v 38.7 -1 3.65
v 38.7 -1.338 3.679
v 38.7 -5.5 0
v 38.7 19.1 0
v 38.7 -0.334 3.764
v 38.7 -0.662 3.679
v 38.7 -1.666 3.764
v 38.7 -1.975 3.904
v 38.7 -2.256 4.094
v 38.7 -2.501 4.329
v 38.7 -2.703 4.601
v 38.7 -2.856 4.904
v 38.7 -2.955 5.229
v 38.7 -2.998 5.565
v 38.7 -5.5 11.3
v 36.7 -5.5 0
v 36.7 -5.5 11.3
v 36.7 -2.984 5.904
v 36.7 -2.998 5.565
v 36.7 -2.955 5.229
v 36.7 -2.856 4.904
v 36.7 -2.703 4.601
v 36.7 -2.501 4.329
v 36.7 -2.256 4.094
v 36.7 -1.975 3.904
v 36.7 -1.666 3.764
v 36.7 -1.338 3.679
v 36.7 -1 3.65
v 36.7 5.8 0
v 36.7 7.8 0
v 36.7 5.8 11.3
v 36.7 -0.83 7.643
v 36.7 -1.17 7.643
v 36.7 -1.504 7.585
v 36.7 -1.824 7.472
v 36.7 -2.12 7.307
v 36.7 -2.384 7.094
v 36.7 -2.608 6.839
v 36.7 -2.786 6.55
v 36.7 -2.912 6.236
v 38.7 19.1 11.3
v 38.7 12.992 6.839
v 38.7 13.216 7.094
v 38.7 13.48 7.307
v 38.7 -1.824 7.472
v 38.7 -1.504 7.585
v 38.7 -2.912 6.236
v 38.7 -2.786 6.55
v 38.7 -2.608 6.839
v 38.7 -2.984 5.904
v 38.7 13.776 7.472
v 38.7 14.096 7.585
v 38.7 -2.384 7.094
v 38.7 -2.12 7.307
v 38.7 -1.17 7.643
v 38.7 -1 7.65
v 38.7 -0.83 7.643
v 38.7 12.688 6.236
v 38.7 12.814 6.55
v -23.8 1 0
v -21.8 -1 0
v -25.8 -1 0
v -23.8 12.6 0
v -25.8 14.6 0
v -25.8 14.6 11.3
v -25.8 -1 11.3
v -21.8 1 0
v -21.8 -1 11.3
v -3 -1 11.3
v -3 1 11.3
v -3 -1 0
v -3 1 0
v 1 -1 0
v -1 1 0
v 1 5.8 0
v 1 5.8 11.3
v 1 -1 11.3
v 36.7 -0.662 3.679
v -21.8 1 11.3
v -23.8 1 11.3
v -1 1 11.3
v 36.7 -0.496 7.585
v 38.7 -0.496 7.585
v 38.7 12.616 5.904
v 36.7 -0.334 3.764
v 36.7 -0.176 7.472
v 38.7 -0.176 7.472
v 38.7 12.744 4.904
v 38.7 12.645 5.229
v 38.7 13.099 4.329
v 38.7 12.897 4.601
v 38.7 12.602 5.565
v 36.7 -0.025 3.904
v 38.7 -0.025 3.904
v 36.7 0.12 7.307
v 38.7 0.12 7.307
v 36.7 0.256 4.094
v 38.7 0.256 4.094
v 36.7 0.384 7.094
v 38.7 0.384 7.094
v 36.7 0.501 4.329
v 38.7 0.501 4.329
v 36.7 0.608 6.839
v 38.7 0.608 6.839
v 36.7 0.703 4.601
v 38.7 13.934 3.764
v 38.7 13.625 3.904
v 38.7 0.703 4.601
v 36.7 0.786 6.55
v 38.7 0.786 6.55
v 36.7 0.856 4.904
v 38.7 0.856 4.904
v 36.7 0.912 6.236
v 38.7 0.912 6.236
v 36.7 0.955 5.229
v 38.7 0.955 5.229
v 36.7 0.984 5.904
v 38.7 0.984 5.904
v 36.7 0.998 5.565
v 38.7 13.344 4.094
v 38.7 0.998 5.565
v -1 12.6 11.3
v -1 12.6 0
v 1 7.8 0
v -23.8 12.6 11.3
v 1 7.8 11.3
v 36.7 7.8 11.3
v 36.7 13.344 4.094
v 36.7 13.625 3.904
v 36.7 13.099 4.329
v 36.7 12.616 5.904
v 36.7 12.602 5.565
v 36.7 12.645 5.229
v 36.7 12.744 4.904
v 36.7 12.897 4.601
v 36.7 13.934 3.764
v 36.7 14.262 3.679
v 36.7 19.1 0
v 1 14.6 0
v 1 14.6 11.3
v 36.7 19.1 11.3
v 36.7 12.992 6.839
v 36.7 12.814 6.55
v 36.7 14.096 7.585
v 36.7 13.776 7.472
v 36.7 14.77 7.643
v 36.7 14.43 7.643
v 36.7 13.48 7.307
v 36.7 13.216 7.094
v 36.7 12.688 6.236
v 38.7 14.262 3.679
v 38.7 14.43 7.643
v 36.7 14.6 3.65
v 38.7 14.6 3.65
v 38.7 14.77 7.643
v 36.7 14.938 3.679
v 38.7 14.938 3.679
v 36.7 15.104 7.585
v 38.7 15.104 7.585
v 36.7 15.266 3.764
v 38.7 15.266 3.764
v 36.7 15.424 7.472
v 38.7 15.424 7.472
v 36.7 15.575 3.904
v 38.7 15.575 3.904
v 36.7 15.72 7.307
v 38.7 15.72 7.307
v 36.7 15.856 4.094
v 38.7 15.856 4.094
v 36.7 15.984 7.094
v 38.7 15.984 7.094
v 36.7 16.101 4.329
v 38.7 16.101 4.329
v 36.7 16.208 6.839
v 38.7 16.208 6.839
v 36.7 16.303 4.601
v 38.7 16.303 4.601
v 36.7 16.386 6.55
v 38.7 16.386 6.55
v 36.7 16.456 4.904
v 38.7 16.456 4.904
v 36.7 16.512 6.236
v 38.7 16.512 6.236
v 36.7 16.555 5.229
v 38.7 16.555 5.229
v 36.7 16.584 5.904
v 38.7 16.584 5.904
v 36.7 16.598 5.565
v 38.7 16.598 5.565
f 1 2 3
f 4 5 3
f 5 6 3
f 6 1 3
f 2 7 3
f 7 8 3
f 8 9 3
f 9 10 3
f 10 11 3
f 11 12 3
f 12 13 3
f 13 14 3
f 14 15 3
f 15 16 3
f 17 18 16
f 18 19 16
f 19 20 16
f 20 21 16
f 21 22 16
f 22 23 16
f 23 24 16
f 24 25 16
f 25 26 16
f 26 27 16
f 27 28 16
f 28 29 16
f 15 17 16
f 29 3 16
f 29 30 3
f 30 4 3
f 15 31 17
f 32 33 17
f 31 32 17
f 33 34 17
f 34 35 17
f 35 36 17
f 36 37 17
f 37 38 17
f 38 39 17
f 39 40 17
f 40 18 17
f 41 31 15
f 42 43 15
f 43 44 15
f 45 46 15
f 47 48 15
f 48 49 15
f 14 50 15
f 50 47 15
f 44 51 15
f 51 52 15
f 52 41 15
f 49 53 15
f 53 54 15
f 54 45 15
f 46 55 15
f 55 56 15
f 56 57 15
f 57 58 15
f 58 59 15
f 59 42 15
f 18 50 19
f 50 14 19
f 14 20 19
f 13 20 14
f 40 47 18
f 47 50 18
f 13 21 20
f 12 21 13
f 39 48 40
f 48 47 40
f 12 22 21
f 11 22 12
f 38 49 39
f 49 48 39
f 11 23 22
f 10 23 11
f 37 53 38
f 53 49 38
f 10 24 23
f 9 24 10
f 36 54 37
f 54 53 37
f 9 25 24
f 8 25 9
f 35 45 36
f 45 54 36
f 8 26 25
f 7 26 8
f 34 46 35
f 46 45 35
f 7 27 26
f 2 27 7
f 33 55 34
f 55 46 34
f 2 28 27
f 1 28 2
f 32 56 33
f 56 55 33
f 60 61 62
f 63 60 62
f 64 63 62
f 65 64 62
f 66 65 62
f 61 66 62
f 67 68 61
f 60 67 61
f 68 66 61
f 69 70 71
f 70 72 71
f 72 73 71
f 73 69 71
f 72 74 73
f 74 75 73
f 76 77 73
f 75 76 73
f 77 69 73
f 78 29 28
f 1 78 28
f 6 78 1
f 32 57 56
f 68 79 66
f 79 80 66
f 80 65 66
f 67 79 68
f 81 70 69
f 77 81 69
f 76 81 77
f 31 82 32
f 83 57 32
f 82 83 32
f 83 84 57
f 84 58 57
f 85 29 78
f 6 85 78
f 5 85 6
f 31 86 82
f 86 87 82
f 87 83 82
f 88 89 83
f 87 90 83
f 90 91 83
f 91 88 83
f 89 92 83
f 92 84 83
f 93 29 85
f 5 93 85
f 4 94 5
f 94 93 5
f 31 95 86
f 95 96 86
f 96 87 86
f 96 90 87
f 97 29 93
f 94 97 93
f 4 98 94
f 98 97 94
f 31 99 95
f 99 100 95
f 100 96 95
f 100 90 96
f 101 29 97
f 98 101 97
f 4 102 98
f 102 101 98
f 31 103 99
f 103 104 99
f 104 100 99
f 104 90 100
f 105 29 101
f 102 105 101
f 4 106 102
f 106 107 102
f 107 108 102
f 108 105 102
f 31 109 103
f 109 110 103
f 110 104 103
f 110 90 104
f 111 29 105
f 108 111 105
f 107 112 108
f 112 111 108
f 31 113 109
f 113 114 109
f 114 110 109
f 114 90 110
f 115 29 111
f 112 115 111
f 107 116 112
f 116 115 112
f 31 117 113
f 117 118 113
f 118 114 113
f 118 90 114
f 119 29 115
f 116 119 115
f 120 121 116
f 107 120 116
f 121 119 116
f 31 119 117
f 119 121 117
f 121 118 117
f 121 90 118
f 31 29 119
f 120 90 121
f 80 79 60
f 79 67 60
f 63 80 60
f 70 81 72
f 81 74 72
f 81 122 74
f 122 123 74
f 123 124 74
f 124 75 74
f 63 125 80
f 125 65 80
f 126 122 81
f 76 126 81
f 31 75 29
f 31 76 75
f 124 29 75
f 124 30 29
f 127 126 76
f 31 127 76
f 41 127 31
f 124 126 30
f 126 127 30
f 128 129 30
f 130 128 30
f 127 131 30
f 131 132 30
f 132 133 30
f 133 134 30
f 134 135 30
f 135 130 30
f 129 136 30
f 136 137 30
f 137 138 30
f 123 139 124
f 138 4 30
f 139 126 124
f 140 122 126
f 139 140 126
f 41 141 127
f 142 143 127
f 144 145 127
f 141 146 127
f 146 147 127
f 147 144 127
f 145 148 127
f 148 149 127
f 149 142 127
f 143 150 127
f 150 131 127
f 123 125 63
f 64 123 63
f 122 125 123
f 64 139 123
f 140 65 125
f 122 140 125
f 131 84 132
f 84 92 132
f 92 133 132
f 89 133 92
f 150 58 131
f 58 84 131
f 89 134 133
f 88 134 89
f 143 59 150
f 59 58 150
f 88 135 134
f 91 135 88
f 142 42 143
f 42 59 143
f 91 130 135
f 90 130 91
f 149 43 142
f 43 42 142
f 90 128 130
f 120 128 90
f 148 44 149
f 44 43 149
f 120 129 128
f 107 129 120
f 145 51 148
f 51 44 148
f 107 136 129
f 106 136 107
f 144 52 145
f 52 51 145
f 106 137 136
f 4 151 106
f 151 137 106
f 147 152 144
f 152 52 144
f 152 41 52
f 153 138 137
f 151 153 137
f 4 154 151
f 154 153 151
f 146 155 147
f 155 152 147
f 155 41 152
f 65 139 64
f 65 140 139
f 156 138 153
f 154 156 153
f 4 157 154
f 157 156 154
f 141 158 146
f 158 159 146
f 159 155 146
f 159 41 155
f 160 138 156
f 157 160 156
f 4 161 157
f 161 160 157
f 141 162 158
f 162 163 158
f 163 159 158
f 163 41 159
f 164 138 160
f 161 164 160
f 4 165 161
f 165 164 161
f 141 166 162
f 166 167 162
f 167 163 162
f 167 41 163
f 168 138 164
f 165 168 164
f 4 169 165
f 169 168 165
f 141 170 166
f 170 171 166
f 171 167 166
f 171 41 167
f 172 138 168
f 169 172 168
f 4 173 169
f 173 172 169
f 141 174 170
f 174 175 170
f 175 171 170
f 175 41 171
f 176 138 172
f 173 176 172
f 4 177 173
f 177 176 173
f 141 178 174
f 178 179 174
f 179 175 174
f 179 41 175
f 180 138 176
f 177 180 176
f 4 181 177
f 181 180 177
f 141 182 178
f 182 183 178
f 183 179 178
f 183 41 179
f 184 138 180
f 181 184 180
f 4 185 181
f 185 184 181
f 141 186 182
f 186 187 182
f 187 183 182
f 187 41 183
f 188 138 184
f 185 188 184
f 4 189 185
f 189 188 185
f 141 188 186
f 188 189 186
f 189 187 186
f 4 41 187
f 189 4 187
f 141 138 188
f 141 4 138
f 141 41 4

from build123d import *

# Parameters (mm, degrees)
BOSS_EXTRU_1_DEPTH      = 11.3
ESQUISSE2_W             = 8.8
ESQUISSE2_H             = 11.3
BOSS_EXTRU_2_DEPTH      = 1
ESQUISSE8_W             = 11.3
ESQUISSE8_H             = 1
BOSS_EXTRU_5_DEPTH      = 10
ESQUISSE9_W             = 2
ESQUISSE9_H             = 11.3
BOSS_EXTRU_6_DEPTH      = 7.8
ESQUISSE10_W            = 11.3
ESQUISSE10_H            = 2
BOSS_EXTRU_7_DEPTH      = 36.7
ESQUISSE11_W            = 2
ESQUISSE11_H            = 11.3
BOSS_EXTRU_8_DEPTH      = 11.3
ESQUISSE12_W            = 2
ESQUISSE12_H            = 11.3
BOSS_EXTRU_9_DEPTH      = 11.3
BOSS_EXTRU_10_DEPTH     = 11.3
ESQUISSE14_W            = 1
ESQUISSE14_H            = 11.3
BOSS_EXTRU_11_DEPTH     = 5.8
ESQUISSE16_W            = 11.3
ESQUISSE16_H            = 6.8
ENL_V_MAT_EXTRU_1_DEPTH = 1
ESQUISSE19_R            = 2
ENL_V_MAT_EXTRU_3_DEPTH = 10
ESQUISSE22_W            = 4
ESQUISSE22_H            = 1
BOSS_EXTRU_12_DEPTH     = 11.3


with BuildPart() as part:
    # Esquisse1 → Boss.-Extru.1 (new body)
    with BuildSketch(Plane.XY):
        Polygon((-21.8, 1), (-21.8, 0), (-24.8, 0), (-24.8, 13.6), (0, 13.6), (0, 0), (-3, 0), (-3, 1), (-1, 1), (-1, 12.6), (-23.8, 12.6), (-23.8, 1), align=None)
    extrude(amount=BOSS_EXTRU_1_DEPTH)

    # Esquisse2 → Boss.-Extru.2 (add)
    with BuildSketch(Plane(origin=(0, 13.6, 0), x_dir=(1, 0, 0), z_dir=(0, 1, 0))):
        with Locations((-12.4, -5.65)):
            Rectangle(ESQUISSE2_W, ESQUISSE2_H)
    extrude(amount=BOSS_EXTRU_2_DEPTH)

    # Esquisse8 → Boss.-Extru.5 (add)
    with BuildSketch(Plane(origin=(-8, 0, 0), x_dir=(0, 0, -1), z_dir=(1, 0, 0))):
        with Locations((-5.65, 14.1)):
            Rectangle(ESQUISSE8_W, ESQUISSE8_H)
    extrude(amount=BOSS_EXTRU_5_DEPTH)

    # Esquisse9 → Boss.-Extru.6 (add)
    with BuildSketch(Plane.XZ.offset(-13.6)):
        with Locations((1, 5.65)):
            Rectangle(ESQUISSE9_W, ESQUISSE9_H)
    extrude(amount=BOSS_EXTRU_6_DEPTH)

    # Esquisse10 → Boss.-Extru.7 (add)
    with BuildSketch(Plane(origin=(2, 0, 0), x_dir=(0, 0, -1), z_dir=(1, 0, 0))):
        with Locations((-5.65, 6.8)):
            Rectangle(ESQUISSE10_W, ESQUISSE10_H)
    extrude(amount=BOSS_EXTRU_7_DEPTH)

    # Esquisse11 → Boss.-Extru.8 (add)
    with BuildSketch(Plane.XZ.offset(-5.8)):
        with Locations((37.7, 5.65)):
            Rectangle(ESQUISSE11_W, ESQUISSE11_H)
    extrude(amount=BOSS_EXTRU_8_DEPTH)

    # Esquisse12 → Boss.-Extru.9 (add)
    with BuildSketch(Plane(origin=(0, 7.8, 0), x_dir=(1, 0, 0), z_dir=(0, 1, 0))):
        with Locations((37.7, -5.65)):
            Rectangle(ESQUISSE12_W, ESQUISSE12_H)
    extrude(amount=BOSS_EXTRU_9_DEPTH)

    # Esquisse13 → Boss.-Extru.10 (add)
    with BuildSketch(Plane.XY.offset(11.3)):
        Polygon((-16.8, 14.6), (-25.8, 14.6), (-25.8, 0), (-24.8, 0), (-24.8, 13.6), (-16.8, 13.6), align=None)
    extrude(amount=-BOSS_EXTRU_10_DEPTH)

    # Esquisse14 → Boss.-Extru.11 (add)
    with BuildSketch(Plane.XZ.offset(-5.8)):
        with Locations((0.5, 5.65)):
            Rectangle(ESQUISSE14_W, ESQUISSE14_H)
    extrude(amount=BOSS_EXTRU_11_DEPTH)

    # Esquisse16 → Enlèv. mat.-Extru.1 (cut)
    with BuildSketch(Plane(origin=(2, 0, 0), x_dir=(0, 0, -1), z_dir=(1, 0, 0))):
        with Locations((-5.65, 11.2)):
            Rectangle(ESQUISSE16_W, ESQUISSE16_H)
    extrude(amount=-ENL_V_MAT_EXTRU_1_DEPTH, mode=Mode.SUBTRACT)

    # Esquisse19 → Enlèv. mat.-Extru.3 (cut)
    with BuildSketch(Plane(origin=(38.7, 0, 0), x_dir=(0, 0, -1), z_dir=(1, 0, 0))):
        with Locations((-5.65, 14.6)):
            Circle(ESQUISSE19_R)
        with Locations((-5.65, -1)):
            Circle(ESQUISSE19_R)
    extrude(amount=-ENL_V_MAT_EXTRU_3_DEPTH, mode=Mode.SUBTRACT)

    # Esquisse22 → Boss.-Extru.12 (add)
    with BuildSketch(Plane.XY.offset(11.3)):
        with Locations((-23.8, -0.5)):
            Rectangle(ESQUISSE22_W, ESQUISSE22_H)
        with Locations((-1, -0.5)):
            Rectangle(ESQUISSE22_W, ESQUISSE22_H)
    extrude(amount=-BOSS_EXTRU_12_DEPTH)


solid = part.part
